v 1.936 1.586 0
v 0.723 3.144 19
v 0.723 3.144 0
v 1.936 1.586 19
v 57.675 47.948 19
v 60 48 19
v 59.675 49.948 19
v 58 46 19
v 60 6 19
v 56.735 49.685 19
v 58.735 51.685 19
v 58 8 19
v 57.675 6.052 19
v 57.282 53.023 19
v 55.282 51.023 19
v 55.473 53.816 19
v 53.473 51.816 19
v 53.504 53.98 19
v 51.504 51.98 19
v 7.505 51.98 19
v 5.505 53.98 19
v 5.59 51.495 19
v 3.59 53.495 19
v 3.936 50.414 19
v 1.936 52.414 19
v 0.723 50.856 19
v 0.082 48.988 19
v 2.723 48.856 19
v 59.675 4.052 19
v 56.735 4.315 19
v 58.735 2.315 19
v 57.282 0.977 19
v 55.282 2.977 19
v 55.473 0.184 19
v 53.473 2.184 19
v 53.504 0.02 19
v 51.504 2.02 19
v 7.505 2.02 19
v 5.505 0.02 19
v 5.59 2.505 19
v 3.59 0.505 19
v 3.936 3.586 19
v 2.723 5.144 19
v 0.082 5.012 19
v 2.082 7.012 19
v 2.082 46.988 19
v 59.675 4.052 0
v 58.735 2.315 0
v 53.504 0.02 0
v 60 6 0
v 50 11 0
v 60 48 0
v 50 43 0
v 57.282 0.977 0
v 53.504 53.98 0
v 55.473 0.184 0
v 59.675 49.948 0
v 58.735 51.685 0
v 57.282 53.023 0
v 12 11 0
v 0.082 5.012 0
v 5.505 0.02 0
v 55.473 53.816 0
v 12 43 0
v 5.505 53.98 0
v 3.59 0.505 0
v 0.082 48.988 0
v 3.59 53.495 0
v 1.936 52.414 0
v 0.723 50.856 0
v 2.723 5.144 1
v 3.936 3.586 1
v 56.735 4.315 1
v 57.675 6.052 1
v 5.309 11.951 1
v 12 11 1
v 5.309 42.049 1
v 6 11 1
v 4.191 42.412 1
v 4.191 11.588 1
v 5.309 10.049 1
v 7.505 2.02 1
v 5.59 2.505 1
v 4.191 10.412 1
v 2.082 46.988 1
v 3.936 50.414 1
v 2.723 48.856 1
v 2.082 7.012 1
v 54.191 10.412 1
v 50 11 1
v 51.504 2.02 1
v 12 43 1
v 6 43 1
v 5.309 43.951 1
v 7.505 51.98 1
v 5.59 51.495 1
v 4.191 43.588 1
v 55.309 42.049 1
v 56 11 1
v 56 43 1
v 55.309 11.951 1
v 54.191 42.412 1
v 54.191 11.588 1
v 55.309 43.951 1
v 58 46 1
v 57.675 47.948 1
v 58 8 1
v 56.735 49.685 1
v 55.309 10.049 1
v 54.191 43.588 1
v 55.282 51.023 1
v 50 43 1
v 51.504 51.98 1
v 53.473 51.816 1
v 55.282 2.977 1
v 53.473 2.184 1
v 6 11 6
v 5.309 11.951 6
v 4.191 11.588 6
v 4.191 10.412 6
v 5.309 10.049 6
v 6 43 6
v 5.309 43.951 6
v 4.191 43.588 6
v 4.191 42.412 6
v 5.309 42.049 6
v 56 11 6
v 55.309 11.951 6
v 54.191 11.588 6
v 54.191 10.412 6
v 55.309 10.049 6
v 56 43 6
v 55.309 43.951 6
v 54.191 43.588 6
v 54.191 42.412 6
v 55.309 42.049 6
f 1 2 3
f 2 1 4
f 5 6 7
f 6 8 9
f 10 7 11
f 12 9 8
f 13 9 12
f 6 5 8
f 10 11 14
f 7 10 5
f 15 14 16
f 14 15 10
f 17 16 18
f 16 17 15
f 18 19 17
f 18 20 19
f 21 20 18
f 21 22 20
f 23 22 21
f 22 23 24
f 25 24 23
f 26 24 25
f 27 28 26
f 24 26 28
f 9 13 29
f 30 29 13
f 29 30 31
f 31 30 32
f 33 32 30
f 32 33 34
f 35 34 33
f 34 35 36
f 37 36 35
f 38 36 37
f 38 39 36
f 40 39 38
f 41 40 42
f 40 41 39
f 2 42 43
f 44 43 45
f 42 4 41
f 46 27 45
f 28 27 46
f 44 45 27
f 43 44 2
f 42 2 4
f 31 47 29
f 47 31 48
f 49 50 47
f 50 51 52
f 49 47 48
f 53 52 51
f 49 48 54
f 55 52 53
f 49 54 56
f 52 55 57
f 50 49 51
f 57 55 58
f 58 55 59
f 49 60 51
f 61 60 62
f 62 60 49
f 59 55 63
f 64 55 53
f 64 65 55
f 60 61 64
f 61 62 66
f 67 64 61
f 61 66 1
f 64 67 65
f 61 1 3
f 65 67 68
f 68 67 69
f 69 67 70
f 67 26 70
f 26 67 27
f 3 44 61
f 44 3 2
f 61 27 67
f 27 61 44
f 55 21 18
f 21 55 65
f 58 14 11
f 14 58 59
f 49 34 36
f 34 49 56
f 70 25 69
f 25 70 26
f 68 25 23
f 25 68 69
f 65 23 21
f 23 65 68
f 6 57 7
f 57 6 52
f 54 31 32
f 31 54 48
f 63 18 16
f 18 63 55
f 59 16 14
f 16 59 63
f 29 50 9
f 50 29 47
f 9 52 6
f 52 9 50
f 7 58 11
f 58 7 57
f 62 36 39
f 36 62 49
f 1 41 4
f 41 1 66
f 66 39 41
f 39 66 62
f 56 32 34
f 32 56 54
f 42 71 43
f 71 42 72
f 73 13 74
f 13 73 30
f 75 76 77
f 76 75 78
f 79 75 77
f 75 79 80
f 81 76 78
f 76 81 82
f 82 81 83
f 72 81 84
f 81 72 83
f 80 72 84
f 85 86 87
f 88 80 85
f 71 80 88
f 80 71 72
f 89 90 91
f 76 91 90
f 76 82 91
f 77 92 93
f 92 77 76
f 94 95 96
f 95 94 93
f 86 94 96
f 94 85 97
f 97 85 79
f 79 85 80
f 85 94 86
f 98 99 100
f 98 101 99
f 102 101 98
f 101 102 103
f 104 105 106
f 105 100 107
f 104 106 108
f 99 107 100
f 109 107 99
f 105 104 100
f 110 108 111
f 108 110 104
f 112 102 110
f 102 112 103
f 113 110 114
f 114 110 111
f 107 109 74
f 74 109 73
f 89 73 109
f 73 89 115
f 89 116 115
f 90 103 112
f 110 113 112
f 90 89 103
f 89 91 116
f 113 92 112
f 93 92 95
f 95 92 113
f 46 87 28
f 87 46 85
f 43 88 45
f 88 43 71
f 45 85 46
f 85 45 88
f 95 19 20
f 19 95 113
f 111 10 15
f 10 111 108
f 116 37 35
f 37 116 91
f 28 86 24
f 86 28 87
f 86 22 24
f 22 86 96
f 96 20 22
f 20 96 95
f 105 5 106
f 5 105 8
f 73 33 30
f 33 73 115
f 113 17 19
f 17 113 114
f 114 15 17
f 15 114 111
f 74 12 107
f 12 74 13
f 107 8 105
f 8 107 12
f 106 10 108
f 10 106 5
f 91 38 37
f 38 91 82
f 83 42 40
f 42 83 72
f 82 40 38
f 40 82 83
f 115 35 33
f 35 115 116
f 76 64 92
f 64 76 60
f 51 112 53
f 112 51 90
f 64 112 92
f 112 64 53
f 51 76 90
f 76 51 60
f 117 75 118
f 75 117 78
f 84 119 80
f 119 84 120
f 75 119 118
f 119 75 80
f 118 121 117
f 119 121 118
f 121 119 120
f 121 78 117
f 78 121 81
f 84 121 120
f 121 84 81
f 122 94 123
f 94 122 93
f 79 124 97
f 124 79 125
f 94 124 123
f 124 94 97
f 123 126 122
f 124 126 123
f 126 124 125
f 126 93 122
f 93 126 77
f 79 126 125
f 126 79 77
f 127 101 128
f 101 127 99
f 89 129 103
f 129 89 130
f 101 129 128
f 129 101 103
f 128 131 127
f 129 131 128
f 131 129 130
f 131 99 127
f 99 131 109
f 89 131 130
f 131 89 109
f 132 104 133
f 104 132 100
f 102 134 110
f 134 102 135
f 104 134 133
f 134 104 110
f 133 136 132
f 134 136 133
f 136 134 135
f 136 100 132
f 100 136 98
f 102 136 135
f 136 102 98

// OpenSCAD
union(){
    difference(){
        translate([6,6,0]){
            minkowski(){
                cube([48,42,1]);
                cylinder(r=6,h=18);
            }
        }
        translate([8,8,1]){
            minkowski(){
                cube([44,38,2]);
                cylinder(r=6,h=16);
            }
        }
        translate([12,11,0]){
            cube([38,32,3]);
        }
    }
    translate([5,11,1]){
        cylinder(r=1,h=5);
    }
    translate([5,43,1]){
        cylinder(r=1,h=5);
    }
    translate([55,11,1]){
        cylinder(r=1,h=5);
    }
    translate([55,43,1]){
        cylinder(r=1,h=5);
    }
}
       
